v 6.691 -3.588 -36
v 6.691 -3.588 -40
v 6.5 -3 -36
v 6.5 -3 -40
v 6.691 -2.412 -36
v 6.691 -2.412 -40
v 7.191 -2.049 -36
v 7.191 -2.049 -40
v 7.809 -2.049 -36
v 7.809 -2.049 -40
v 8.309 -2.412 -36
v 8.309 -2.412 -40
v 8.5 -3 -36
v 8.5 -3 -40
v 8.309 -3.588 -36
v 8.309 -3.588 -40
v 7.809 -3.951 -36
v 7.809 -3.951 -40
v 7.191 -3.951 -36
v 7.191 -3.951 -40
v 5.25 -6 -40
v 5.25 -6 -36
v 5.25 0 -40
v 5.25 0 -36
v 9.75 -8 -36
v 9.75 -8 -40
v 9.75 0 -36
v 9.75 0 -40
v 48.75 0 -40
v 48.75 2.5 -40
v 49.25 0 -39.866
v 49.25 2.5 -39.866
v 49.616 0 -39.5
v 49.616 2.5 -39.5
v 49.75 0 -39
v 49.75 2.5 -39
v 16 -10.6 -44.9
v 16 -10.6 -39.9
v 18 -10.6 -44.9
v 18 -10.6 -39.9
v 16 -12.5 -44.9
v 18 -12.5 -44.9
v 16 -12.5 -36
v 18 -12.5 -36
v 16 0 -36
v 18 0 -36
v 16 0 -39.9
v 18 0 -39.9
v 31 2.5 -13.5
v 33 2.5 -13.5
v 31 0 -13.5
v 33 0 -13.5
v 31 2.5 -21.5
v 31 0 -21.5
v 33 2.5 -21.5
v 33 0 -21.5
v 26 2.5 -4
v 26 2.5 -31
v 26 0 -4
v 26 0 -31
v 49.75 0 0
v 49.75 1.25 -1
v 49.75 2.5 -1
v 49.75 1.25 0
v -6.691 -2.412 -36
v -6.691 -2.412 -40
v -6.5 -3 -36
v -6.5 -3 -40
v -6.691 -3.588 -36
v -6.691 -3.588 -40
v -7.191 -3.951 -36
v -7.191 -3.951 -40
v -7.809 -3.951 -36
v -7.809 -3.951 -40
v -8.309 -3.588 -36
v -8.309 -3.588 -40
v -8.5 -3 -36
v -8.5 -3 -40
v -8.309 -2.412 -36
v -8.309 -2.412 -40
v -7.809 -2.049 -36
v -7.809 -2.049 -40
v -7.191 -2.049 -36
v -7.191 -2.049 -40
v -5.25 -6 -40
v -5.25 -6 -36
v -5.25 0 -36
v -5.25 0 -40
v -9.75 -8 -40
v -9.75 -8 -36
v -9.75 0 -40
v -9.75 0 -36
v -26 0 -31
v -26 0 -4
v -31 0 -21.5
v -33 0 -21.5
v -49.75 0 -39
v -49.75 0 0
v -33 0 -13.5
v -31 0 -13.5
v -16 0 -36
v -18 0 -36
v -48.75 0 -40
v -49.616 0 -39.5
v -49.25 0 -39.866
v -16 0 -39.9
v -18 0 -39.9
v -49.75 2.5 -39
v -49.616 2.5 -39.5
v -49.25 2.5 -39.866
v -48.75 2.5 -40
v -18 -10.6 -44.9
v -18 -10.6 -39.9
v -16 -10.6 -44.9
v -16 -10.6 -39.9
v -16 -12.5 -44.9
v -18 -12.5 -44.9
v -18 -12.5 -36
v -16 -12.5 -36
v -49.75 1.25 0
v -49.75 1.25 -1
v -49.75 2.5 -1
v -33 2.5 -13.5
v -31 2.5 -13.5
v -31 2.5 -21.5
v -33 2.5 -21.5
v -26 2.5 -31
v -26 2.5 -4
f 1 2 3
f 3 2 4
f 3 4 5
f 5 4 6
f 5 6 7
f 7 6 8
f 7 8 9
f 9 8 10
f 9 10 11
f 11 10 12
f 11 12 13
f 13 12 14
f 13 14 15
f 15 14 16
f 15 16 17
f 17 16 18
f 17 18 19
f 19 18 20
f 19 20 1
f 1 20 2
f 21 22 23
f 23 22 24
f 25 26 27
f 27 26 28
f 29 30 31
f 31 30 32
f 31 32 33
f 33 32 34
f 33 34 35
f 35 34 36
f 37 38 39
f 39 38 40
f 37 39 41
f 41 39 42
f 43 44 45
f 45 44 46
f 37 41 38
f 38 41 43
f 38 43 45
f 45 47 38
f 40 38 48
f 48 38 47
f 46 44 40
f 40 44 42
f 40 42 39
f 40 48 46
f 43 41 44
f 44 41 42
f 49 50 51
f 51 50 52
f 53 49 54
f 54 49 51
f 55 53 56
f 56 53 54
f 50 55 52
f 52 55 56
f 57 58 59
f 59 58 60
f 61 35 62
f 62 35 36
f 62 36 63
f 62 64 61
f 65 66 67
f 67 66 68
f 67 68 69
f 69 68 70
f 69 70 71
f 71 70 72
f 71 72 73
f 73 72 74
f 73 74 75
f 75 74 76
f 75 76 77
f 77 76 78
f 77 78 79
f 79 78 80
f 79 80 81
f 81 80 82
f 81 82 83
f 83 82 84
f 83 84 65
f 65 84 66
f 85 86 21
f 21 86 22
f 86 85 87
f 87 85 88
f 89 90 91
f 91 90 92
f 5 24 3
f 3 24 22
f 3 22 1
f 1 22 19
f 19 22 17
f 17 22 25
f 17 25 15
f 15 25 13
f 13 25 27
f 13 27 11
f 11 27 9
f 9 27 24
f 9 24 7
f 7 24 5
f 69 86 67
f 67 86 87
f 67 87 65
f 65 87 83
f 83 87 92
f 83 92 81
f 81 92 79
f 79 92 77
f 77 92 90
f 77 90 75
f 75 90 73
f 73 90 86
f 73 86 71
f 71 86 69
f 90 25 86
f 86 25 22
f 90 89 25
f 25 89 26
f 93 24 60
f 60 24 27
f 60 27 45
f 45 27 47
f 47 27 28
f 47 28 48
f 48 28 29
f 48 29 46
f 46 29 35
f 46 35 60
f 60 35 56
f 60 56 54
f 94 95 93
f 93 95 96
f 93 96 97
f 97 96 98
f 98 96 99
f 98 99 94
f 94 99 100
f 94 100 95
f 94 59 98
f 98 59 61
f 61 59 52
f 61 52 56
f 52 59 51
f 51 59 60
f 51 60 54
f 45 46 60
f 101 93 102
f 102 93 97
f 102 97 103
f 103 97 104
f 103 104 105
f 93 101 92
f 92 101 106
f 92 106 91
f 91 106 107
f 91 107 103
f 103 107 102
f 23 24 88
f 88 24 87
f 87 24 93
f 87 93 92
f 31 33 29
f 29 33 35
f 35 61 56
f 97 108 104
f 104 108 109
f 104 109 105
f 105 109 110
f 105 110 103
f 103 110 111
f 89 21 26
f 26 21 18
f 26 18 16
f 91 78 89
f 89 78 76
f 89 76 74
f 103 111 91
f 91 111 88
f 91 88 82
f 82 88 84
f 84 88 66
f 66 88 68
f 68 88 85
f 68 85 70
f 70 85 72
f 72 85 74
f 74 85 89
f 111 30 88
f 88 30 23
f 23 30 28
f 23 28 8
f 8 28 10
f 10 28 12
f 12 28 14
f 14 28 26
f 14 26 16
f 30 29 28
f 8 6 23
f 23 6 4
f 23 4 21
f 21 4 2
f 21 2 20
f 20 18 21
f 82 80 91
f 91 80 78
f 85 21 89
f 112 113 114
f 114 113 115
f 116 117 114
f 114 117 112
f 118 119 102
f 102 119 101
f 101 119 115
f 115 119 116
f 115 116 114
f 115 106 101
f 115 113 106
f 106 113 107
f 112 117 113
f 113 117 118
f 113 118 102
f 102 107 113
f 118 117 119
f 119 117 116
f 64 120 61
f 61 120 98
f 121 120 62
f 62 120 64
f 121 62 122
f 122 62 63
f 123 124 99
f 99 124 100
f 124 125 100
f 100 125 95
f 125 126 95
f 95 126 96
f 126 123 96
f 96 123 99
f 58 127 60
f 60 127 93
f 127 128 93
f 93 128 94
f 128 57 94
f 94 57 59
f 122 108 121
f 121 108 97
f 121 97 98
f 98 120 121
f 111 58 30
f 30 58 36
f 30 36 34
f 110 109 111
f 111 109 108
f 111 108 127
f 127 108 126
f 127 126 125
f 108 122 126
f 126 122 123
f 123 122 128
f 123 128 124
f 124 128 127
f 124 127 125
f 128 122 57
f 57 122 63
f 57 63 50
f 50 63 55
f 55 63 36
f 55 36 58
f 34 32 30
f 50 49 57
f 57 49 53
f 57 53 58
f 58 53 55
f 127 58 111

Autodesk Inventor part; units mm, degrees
ref_plane "YZ Plane" through (0, 0, 0) normal (1, 0, 0) x (0, 1, 0)
ref_plane "XZ Plane" through (0, 0, 0) normal (0, 1, 0) x (-1, 0, 0)
ref_plane "XY Plane" through (0, 0, 0) normal (0, 0, 1) x (1, 0, 0)
sketch "Náčrt1" plane through (0, 0, 0) normal (0, 1, 0) x (-1, 0, 0)
  line L0 (0, 0) -> (49.75, 0)
  line L1 (49.75, 0) -> (49.75, -40)
  line L2 (49.75, -40) -> (0, -40)
  line L3 (0, -1) -> (49.75, -1)
  line L4 (18, -36) -> (16, -36)
  line L5 (18, -36) -> (18, -39.9)
  line L6 (18, -39.9) -> (16, -39.9)
  line L7 (16, -39.9) -> (16, -36)
  line L8 (5.25, -40) -> (5.25, -36)
  line L9 (5.25, -36) -> (9.75, -36)
  line L10 (9.75, -36) -> (9.75, -40)
  line L11 (0, -4) -> (26, -4)
  line L12 (26, -4) -> (26, -31)
  line L13 (26, -31) -> (0, -31)
  line L14 (0, -40) -> (0, -31)
  line L15 (0, -4) -> (0, 0)
  line L16 (33, -13.5) -> (31, -13.5)
  line L17 (31, -13.5) -> (31, -21.5)
  line L18 (31, -21.5) -> (33, -21.5)
  line L19 (33, -21.5) -> (33, -13.5)
  point P0 (49.75, -20)
  point P1 (33, -17.5)
  point P2 (26, -17.5)
  dimension "d0" = 40
  dimension "d1" = 49.75
  dimension "d2" = 1
  dimension "d5" = 4
  dimension "d16" = 0.1
  dimension "d17" = 31.75
  dimension "d18" = 2
  dimension "d28" = 4.5
  dimension "d29" = 4
  dimension "d57" = 27
  dimension "d58" = 26
  dimension "d59" = 5.25
  dimension "d60" = 8
  dimension "d61" = 2
  dimension "d62" = 5
  dimension "d63" = 4
extrude "Vysunutí1" add sketch "Náčrt1" along normal blind 2.5 contours L3 L1 L2 L10 L9 L8 L14 L13 L12 L11 L15 | L2 L8 L9 L10 | L5 L6 L7 L4
extrude "Vysunutí2" add sketch "Náčrt1" along normal blind 1.25 contours L0 L1 L3 L15
extrude "Vysunutí3" add sketch "Náčrt1" against normal blind 12.5 contours L5 L6 L7 L4
sketch "Náčrt3" plane through (-16, 0, -39.9) normal (0, 0, -1) x (-1, 0, 0)
  line L0 (0, 0) -> (0, -12.5) projected
  line L1 (0, -12.5) -> (2, -12.5) projected
  line L2 (2, 0) -> (2, -12.5) projected
  line L3 (0, 0) -> (0, -12.5) projected
  line L4 (0, -10.6) -> (2, -10.6)
  line L5 (2, 0) -> (2, -12.5) projected
  point P0 (-16, 0)
  point P1 (2, -10.6)
  point P2 (0, -10.6)
  dimension "d19" = 1.9
extrude "Vysunutí5" add sketch "Náčrt3" along normal blind 5
fillet "Zaoblení1" radius 1 1 edges at (-49.75, 1.25, -40)
extrude "Vysunutí6" add sketch "Náčrt1" against normal blind 8 contours L2 L8 L9 L10
sketch "Náčrt7" plane through (-5.25, -8, -36) normal (1, 0, 0) x (0, 0, -1)
  line L0 (0, 8) -> (0, 0) projected
  line L1 (0, 0) -> (4, 0) projected
  line L2 (4, 8) -> (4, 0) projected
  line L3 (0, 8) -> (0, 0) projected
  line L4 (0, 2) -> (4, 2)
  line L5 (4, 8) -> (4, 0) projected
  point P0 (-36, 8)
  dimension "d36" = 2
extrude "Vysunutí8" add sketch "Náčrt7" along normal up to surface (5.25 mm away)
sketch "Náčrt8" plane through (0, 0, -40) normal (0, 0, -1) x (-1, 0, 0)
  line L0 (9.75, 0) -> (9.75, -8) projected
  line L1 (5.25, -6) -> (0, -6) projected
  point P0 (0, 0)
  point P1 (7.5, -3)
  dimension "d46" = 2.25
  dimension "d47" = 3
hole "Díra1" at (-7.5, -3, -40) direction (0, 0, 1) diameter 2 end through all
mirror "Zrcadlit2" about plane through (0, 0, -40) normal (1, 0, 0)
properties part number "Kryt těla"
